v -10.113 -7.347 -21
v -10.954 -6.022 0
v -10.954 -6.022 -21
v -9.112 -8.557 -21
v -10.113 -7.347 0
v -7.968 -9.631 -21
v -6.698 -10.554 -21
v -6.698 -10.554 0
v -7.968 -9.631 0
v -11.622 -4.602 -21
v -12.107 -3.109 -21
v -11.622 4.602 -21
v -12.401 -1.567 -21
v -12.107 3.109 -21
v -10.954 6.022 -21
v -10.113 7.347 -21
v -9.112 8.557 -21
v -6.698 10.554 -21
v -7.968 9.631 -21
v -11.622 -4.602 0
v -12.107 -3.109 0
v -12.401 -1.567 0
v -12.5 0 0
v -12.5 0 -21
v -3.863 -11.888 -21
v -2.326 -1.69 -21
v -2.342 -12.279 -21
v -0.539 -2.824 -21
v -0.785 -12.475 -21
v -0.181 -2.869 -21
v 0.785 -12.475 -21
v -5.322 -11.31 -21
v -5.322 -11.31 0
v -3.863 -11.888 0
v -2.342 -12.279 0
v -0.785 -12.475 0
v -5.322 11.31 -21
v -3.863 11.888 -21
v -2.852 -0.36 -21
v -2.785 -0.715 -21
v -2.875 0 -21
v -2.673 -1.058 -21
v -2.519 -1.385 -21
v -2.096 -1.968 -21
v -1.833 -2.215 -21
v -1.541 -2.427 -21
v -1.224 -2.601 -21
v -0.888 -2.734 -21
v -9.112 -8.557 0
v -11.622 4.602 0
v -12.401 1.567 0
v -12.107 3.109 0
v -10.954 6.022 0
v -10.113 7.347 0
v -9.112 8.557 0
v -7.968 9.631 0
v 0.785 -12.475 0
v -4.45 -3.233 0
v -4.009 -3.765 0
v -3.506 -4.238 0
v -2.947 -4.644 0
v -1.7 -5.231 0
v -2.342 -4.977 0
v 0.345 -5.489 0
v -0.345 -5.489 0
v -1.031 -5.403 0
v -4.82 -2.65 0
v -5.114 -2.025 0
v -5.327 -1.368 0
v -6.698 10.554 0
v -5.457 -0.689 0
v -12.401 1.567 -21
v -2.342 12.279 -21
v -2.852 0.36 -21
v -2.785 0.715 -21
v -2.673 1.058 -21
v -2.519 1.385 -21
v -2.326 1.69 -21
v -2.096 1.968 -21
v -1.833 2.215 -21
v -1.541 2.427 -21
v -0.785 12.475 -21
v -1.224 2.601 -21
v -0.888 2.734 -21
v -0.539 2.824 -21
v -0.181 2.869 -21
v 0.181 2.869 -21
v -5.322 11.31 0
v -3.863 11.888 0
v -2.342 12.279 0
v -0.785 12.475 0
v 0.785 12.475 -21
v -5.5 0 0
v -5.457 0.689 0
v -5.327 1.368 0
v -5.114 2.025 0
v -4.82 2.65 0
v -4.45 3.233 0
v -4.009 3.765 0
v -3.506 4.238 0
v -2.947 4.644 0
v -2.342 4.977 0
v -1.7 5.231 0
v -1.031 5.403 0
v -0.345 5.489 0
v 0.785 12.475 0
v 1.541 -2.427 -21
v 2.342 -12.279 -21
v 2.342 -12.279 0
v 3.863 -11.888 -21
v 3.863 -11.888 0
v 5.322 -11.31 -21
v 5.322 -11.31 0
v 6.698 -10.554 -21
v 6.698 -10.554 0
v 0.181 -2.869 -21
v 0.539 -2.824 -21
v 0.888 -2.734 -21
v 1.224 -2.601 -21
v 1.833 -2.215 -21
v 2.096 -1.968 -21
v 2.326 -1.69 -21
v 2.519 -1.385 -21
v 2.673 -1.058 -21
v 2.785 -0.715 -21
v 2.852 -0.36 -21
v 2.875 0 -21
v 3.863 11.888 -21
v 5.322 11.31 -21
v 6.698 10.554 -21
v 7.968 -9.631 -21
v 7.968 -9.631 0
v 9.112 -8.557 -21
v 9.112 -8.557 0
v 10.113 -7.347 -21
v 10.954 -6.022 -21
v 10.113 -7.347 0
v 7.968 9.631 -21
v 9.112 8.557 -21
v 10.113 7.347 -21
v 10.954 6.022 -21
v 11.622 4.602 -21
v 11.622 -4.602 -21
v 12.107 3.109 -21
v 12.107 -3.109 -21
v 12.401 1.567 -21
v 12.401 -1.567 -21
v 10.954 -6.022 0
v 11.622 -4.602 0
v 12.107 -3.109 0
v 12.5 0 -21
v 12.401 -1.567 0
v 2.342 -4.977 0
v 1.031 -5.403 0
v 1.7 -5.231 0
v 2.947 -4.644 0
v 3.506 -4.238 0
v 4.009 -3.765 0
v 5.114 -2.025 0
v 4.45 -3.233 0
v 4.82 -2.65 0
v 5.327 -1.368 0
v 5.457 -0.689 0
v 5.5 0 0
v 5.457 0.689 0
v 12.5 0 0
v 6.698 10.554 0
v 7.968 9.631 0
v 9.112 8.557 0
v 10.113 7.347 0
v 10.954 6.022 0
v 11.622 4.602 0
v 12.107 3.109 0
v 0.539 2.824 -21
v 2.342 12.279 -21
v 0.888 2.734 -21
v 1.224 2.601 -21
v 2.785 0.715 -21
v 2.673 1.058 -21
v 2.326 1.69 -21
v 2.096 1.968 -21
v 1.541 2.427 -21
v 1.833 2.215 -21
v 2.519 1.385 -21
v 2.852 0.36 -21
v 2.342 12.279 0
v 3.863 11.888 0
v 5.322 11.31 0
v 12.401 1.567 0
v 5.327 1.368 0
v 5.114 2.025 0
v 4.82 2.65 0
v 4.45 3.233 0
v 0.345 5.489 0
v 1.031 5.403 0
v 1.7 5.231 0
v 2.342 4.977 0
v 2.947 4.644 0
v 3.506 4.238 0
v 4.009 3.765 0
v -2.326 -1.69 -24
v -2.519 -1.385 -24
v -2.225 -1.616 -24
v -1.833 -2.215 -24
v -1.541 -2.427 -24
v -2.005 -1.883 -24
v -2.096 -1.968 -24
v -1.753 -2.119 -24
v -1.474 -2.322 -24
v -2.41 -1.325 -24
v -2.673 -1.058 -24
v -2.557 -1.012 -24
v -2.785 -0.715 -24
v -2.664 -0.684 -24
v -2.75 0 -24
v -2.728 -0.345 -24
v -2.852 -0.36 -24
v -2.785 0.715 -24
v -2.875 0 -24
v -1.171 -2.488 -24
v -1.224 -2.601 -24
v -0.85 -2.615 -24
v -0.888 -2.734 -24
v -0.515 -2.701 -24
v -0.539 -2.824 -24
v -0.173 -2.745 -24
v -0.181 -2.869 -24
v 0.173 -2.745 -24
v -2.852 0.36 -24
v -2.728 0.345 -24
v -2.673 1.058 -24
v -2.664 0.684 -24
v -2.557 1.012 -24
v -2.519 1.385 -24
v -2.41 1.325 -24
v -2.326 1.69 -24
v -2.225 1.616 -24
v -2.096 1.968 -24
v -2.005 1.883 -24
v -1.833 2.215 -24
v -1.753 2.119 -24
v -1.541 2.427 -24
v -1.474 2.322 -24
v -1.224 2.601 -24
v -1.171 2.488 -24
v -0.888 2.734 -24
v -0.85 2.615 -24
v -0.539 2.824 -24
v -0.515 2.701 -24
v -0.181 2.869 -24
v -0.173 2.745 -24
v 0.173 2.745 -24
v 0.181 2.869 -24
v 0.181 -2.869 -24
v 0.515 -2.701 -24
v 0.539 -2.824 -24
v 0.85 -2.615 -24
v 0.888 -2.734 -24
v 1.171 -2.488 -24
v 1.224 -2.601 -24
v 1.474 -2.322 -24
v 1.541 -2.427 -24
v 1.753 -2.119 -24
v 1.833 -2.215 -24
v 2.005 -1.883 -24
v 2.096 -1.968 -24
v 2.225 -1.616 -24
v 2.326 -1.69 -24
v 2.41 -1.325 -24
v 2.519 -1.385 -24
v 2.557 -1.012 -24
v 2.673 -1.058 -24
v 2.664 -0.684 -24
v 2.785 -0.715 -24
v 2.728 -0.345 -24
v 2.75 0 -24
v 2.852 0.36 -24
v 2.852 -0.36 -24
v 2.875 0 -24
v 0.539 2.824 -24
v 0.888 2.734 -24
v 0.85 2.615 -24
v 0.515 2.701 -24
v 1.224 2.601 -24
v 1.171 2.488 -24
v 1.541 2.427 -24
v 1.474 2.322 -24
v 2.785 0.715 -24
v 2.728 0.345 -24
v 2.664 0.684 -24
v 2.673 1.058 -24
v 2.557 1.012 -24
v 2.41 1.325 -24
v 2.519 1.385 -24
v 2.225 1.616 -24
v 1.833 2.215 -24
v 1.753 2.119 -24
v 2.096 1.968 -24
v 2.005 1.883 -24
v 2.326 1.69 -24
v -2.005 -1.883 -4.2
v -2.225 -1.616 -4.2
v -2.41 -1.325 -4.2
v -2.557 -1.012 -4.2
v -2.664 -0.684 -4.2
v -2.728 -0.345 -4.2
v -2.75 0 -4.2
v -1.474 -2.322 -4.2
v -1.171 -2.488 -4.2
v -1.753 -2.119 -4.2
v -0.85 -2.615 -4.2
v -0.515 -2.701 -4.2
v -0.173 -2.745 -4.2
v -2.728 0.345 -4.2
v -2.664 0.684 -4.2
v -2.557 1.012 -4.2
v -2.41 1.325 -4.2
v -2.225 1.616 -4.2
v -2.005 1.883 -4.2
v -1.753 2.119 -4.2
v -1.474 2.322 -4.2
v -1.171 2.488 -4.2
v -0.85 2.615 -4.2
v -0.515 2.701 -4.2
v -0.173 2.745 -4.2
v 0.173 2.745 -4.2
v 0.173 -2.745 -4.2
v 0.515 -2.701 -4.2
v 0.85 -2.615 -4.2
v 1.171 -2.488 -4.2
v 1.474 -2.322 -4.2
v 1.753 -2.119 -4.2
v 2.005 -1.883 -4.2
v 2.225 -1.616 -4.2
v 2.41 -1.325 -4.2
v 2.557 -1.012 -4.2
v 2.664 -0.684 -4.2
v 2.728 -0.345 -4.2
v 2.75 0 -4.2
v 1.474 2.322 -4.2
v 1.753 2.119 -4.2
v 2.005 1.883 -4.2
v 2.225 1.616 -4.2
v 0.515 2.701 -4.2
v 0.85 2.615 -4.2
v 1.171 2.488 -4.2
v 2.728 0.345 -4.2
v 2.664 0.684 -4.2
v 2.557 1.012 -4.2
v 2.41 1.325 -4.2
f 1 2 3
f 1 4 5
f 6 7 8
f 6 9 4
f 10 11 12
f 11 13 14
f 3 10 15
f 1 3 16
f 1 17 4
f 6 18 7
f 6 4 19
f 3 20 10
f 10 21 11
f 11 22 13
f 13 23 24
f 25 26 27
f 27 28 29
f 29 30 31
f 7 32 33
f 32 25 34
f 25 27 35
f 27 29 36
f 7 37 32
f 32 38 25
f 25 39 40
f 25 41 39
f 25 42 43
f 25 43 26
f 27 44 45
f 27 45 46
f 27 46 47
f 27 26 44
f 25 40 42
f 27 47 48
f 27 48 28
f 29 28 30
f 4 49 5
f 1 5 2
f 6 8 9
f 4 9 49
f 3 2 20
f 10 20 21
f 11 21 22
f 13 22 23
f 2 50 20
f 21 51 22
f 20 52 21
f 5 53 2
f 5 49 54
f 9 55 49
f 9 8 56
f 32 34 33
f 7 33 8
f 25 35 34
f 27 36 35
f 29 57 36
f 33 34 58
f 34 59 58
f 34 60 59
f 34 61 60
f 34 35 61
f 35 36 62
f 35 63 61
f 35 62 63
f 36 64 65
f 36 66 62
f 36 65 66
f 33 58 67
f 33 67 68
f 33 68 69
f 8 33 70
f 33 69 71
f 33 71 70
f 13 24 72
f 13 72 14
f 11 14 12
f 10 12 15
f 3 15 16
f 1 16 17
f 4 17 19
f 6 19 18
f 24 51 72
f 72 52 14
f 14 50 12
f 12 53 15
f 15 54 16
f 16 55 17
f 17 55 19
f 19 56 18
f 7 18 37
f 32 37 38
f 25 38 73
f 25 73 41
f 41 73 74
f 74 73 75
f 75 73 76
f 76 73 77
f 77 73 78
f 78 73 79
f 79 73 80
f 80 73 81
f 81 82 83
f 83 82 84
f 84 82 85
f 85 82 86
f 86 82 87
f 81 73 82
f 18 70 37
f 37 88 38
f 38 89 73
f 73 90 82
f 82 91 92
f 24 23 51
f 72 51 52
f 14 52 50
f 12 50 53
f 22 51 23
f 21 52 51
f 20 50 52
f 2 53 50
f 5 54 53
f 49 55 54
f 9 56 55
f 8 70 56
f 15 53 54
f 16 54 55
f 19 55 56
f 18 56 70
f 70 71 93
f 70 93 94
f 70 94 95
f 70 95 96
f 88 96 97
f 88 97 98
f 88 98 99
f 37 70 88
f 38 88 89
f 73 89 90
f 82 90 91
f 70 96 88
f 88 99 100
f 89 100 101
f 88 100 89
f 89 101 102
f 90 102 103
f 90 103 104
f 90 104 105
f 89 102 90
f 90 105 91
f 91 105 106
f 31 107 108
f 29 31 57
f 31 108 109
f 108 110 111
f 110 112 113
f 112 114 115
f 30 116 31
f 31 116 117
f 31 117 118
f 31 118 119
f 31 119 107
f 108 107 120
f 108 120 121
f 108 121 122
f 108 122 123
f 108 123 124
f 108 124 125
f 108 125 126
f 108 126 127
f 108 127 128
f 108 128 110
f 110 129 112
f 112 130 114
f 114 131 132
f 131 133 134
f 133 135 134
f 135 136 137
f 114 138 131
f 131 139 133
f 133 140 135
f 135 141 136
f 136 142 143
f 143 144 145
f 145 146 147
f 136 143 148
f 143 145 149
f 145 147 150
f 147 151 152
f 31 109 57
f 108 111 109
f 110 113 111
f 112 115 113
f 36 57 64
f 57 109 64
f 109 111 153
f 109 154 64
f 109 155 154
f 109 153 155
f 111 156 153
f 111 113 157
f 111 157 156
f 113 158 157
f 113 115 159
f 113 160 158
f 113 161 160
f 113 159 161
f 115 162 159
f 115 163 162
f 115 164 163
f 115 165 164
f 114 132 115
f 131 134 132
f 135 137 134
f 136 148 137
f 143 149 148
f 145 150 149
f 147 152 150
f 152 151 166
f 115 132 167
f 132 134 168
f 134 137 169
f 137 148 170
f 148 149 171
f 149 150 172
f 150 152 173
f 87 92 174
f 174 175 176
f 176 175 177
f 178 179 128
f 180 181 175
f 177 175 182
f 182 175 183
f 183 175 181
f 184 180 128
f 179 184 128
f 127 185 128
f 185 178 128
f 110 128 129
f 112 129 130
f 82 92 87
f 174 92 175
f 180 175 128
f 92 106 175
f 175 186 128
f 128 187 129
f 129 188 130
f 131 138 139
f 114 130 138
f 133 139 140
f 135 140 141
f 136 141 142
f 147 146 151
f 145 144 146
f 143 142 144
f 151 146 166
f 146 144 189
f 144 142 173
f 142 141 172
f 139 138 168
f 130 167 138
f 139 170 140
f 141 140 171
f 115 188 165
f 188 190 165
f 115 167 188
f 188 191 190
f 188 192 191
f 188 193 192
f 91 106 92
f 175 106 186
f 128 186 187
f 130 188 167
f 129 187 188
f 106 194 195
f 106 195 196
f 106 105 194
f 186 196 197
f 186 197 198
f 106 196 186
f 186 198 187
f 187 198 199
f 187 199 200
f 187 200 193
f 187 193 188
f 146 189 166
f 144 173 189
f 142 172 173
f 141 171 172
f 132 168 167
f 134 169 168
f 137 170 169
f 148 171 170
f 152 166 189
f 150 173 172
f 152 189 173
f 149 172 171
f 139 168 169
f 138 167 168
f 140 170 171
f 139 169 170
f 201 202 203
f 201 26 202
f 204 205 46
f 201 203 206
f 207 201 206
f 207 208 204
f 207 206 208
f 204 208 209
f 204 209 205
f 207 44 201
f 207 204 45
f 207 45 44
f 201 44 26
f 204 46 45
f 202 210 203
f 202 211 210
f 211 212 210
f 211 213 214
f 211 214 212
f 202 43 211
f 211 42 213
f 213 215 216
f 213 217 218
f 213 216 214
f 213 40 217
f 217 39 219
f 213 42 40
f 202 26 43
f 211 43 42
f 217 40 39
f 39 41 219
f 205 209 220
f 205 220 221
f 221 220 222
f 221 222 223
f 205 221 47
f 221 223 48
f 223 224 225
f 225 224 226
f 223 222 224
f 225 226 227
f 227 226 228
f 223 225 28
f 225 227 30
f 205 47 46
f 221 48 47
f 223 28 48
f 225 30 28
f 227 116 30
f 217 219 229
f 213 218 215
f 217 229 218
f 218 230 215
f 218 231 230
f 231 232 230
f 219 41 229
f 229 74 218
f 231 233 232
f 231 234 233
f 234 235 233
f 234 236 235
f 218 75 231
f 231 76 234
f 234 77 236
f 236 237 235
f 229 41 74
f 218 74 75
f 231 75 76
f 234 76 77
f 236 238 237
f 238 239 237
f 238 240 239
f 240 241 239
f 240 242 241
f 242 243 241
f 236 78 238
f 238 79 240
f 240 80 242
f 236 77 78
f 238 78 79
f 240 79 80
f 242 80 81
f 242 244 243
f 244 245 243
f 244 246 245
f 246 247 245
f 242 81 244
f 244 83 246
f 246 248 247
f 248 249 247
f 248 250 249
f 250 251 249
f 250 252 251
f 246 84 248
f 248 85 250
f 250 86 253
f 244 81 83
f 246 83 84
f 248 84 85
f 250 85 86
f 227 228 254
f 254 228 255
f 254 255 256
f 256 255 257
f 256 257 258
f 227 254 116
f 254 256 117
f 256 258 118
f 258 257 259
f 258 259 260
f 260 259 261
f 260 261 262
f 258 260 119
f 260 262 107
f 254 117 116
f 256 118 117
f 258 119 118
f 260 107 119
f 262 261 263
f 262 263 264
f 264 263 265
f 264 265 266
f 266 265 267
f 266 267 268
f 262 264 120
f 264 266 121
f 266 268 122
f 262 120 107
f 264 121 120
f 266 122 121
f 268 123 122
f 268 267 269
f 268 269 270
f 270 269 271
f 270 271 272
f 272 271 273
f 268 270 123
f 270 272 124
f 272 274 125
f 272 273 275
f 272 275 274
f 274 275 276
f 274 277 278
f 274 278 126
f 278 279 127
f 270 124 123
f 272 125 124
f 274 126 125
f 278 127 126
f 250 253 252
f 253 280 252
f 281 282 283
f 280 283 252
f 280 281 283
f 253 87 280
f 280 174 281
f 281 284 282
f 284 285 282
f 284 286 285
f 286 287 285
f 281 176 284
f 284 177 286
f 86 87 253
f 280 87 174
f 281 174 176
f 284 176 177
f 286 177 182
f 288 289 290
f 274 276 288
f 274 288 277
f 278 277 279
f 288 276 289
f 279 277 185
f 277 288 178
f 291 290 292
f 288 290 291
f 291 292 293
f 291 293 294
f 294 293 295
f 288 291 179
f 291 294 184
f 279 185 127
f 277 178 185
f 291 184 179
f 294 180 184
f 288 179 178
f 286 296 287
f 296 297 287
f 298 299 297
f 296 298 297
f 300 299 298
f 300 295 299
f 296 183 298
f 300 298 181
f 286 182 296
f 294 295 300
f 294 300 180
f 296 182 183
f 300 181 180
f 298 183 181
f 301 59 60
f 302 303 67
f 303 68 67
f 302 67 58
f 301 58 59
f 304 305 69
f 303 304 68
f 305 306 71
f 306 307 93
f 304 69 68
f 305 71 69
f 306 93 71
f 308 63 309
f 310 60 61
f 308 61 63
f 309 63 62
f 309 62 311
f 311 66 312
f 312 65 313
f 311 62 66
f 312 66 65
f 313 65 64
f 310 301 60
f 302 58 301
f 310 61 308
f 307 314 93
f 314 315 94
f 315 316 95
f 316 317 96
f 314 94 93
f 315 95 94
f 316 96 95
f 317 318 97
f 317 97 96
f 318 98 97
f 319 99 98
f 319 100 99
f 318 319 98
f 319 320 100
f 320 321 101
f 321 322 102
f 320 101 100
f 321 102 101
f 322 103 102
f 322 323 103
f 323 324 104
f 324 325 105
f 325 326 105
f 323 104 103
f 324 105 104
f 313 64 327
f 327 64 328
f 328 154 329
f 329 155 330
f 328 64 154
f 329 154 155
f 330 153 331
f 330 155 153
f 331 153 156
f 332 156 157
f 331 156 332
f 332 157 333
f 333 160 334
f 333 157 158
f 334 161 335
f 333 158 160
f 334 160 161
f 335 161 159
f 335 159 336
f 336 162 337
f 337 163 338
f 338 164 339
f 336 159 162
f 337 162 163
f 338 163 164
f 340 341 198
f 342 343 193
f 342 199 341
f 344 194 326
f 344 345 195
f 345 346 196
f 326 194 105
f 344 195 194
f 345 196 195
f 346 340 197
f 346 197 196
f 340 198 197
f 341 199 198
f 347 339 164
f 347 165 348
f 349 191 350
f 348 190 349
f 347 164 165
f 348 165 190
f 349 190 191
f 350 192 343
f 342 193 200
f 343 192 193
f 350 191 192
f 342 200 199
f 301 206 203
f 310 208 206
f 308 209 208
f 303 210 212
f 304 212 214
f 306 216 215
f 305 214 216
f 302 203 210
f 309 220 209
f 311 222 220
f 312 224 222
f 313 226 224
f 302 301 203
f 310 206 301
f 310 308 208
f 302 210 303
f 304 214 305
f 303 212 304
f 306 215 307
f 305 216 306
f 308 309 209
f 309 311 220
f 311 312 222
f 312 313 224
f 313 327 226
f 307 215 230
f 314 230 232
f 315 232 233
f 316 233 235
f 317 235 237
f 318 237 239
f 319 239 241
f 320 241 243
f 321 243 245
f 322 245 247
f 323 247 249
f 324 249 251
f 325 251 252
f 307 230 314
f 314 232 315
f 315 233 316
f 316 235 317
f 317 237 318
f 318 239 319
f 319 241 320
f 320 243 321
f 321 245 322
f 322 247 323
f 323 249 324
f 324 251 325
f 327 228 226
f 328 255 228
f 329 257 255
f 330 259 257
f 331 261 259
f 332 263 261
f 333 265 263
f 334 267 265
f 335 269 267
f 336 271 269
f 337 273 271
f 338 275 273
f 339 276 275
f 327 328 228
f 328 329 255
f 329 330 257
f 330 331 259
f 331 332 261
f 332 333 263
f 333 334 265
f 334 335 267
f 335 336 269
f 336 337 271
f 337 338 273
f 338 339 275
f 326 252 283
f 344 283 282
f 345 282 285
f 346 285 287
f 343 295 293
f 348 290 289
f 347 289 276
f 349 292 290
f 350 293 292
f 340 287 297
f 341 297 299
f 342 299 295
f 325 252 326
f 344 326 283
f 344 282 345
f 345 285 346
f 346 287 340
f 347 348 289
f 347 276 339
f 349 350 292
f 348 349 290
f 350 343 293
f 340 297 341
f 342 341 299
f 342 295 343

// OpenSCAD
$fn = 50;

difference() {
	union() {
		translate(v = [0, 0, -21.0]) {
			cylinder(h = 21, r = 12.5);
		}
		#translate(v = [0, 0, -24.0]) {
			cylinder(h = 24, r = 2.875);
		}
	}
	union() {
		translate(v = [0, 0, 0]) {
			rotate(a = [0, 0, 0]) {
				difference() {
					union() {
						translate(v = [0, 0, -24.0]) {
							cylinder(h = 24, r = 2.25);
						}
						translate(v = [0, 0, -4.2]) {
							cylinder(h = 4.2, r1 = 2.75, r2 = 5.5);
						}
						translate(v = [0, 0, -24.0]) {
							cylinder(h = 24, r = 2.75);
						}
						translate(v = [0, 0, -24.0]) {
							cylinder(h = 24, r = 2.25);
						}
					}
					union();
				}
			}
		}
	}
}
